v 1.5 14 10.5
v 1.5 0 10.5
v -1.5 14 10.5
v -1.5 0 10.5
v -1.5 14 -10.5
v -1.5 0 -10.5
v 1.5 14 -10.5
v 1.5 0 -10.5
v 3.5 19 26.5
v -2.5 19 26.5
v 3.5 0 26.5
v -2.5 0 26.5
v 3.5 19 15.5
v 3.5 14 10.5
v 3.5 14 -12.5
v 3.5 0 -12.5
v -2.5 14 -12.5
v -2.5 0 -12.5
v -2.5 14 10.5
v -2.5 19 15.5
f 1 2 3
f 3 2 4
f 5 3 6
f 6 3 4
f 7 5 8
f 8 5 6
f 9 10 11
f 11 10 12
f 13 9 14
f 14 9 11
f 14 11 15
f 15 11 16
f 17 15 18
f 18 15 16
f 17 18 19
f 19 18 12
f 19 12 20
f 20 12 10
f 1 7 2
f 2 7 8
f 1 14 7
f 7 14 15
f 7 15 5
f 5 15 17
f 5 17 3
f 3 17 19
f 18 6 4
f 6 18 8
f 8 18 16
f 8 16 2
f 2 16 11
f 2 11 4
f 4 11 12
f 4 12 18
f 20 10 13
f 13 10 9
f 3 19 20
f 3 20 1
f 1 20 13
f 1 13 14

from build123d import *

# Parameters (mm, degrees)
EXTRUDE_2_DEPTH = 14
SKETCH_3_W      = 6
SKETCH_3_H      = 16
EXTRUDE_3_DEPTH = 5
CHAMFER_1_SIZE  = 5


with BuildPart() as part:
    # Эскиз1 → Бобышка-Вытянуть2 (new body)
    with BuildSketch(Plane(origin=(0, 0, 0), x_dir=(1, 0, 0), z_dir=(0, 1, 0))):
        Polygon((-2.5, -26.5), (-1.5, -26.5), (3.5, -26.5), (3.5, -12.5), (3.5, -7.973274813), (3.5, 12.5), (-1.5, 12.5), (-2.5, 12.5), align=None)
        Polygon((1.5, -10.5), (-1.5, -10.5), (-1.5, -5.357142857), (-1.5, 5.357142857), (-1.5, 10.5), (1.5, 10.5), align=None, mode=Mode.SUBTRACT)
    extrude(amount=EXTRUDE_2_DEPTH)

    # Эскиз3 → Бобышка-Вытянуть3 (add)
    with BuildSketch(Plane(origin=(0, 14, 0), x_dir=(1, 0, 0), z_dir=(0, 1, 0))):
        with Locations((0.5, -18.5)):
            Rectangle(SKETCH_3_W, SKETCH_3_H)
    extrude(amount=EXTRUDE_3_DEPTH)

    # Фаска1
    chamfer_1_edges = [part.edges().sort_by_distance(p)[0] for p in [
        (0.5, 19, 10.5),
    ]]
    chamfer(chamfer_1_edges, length=CHAMFER_1_SIZE)


solid = part.part
